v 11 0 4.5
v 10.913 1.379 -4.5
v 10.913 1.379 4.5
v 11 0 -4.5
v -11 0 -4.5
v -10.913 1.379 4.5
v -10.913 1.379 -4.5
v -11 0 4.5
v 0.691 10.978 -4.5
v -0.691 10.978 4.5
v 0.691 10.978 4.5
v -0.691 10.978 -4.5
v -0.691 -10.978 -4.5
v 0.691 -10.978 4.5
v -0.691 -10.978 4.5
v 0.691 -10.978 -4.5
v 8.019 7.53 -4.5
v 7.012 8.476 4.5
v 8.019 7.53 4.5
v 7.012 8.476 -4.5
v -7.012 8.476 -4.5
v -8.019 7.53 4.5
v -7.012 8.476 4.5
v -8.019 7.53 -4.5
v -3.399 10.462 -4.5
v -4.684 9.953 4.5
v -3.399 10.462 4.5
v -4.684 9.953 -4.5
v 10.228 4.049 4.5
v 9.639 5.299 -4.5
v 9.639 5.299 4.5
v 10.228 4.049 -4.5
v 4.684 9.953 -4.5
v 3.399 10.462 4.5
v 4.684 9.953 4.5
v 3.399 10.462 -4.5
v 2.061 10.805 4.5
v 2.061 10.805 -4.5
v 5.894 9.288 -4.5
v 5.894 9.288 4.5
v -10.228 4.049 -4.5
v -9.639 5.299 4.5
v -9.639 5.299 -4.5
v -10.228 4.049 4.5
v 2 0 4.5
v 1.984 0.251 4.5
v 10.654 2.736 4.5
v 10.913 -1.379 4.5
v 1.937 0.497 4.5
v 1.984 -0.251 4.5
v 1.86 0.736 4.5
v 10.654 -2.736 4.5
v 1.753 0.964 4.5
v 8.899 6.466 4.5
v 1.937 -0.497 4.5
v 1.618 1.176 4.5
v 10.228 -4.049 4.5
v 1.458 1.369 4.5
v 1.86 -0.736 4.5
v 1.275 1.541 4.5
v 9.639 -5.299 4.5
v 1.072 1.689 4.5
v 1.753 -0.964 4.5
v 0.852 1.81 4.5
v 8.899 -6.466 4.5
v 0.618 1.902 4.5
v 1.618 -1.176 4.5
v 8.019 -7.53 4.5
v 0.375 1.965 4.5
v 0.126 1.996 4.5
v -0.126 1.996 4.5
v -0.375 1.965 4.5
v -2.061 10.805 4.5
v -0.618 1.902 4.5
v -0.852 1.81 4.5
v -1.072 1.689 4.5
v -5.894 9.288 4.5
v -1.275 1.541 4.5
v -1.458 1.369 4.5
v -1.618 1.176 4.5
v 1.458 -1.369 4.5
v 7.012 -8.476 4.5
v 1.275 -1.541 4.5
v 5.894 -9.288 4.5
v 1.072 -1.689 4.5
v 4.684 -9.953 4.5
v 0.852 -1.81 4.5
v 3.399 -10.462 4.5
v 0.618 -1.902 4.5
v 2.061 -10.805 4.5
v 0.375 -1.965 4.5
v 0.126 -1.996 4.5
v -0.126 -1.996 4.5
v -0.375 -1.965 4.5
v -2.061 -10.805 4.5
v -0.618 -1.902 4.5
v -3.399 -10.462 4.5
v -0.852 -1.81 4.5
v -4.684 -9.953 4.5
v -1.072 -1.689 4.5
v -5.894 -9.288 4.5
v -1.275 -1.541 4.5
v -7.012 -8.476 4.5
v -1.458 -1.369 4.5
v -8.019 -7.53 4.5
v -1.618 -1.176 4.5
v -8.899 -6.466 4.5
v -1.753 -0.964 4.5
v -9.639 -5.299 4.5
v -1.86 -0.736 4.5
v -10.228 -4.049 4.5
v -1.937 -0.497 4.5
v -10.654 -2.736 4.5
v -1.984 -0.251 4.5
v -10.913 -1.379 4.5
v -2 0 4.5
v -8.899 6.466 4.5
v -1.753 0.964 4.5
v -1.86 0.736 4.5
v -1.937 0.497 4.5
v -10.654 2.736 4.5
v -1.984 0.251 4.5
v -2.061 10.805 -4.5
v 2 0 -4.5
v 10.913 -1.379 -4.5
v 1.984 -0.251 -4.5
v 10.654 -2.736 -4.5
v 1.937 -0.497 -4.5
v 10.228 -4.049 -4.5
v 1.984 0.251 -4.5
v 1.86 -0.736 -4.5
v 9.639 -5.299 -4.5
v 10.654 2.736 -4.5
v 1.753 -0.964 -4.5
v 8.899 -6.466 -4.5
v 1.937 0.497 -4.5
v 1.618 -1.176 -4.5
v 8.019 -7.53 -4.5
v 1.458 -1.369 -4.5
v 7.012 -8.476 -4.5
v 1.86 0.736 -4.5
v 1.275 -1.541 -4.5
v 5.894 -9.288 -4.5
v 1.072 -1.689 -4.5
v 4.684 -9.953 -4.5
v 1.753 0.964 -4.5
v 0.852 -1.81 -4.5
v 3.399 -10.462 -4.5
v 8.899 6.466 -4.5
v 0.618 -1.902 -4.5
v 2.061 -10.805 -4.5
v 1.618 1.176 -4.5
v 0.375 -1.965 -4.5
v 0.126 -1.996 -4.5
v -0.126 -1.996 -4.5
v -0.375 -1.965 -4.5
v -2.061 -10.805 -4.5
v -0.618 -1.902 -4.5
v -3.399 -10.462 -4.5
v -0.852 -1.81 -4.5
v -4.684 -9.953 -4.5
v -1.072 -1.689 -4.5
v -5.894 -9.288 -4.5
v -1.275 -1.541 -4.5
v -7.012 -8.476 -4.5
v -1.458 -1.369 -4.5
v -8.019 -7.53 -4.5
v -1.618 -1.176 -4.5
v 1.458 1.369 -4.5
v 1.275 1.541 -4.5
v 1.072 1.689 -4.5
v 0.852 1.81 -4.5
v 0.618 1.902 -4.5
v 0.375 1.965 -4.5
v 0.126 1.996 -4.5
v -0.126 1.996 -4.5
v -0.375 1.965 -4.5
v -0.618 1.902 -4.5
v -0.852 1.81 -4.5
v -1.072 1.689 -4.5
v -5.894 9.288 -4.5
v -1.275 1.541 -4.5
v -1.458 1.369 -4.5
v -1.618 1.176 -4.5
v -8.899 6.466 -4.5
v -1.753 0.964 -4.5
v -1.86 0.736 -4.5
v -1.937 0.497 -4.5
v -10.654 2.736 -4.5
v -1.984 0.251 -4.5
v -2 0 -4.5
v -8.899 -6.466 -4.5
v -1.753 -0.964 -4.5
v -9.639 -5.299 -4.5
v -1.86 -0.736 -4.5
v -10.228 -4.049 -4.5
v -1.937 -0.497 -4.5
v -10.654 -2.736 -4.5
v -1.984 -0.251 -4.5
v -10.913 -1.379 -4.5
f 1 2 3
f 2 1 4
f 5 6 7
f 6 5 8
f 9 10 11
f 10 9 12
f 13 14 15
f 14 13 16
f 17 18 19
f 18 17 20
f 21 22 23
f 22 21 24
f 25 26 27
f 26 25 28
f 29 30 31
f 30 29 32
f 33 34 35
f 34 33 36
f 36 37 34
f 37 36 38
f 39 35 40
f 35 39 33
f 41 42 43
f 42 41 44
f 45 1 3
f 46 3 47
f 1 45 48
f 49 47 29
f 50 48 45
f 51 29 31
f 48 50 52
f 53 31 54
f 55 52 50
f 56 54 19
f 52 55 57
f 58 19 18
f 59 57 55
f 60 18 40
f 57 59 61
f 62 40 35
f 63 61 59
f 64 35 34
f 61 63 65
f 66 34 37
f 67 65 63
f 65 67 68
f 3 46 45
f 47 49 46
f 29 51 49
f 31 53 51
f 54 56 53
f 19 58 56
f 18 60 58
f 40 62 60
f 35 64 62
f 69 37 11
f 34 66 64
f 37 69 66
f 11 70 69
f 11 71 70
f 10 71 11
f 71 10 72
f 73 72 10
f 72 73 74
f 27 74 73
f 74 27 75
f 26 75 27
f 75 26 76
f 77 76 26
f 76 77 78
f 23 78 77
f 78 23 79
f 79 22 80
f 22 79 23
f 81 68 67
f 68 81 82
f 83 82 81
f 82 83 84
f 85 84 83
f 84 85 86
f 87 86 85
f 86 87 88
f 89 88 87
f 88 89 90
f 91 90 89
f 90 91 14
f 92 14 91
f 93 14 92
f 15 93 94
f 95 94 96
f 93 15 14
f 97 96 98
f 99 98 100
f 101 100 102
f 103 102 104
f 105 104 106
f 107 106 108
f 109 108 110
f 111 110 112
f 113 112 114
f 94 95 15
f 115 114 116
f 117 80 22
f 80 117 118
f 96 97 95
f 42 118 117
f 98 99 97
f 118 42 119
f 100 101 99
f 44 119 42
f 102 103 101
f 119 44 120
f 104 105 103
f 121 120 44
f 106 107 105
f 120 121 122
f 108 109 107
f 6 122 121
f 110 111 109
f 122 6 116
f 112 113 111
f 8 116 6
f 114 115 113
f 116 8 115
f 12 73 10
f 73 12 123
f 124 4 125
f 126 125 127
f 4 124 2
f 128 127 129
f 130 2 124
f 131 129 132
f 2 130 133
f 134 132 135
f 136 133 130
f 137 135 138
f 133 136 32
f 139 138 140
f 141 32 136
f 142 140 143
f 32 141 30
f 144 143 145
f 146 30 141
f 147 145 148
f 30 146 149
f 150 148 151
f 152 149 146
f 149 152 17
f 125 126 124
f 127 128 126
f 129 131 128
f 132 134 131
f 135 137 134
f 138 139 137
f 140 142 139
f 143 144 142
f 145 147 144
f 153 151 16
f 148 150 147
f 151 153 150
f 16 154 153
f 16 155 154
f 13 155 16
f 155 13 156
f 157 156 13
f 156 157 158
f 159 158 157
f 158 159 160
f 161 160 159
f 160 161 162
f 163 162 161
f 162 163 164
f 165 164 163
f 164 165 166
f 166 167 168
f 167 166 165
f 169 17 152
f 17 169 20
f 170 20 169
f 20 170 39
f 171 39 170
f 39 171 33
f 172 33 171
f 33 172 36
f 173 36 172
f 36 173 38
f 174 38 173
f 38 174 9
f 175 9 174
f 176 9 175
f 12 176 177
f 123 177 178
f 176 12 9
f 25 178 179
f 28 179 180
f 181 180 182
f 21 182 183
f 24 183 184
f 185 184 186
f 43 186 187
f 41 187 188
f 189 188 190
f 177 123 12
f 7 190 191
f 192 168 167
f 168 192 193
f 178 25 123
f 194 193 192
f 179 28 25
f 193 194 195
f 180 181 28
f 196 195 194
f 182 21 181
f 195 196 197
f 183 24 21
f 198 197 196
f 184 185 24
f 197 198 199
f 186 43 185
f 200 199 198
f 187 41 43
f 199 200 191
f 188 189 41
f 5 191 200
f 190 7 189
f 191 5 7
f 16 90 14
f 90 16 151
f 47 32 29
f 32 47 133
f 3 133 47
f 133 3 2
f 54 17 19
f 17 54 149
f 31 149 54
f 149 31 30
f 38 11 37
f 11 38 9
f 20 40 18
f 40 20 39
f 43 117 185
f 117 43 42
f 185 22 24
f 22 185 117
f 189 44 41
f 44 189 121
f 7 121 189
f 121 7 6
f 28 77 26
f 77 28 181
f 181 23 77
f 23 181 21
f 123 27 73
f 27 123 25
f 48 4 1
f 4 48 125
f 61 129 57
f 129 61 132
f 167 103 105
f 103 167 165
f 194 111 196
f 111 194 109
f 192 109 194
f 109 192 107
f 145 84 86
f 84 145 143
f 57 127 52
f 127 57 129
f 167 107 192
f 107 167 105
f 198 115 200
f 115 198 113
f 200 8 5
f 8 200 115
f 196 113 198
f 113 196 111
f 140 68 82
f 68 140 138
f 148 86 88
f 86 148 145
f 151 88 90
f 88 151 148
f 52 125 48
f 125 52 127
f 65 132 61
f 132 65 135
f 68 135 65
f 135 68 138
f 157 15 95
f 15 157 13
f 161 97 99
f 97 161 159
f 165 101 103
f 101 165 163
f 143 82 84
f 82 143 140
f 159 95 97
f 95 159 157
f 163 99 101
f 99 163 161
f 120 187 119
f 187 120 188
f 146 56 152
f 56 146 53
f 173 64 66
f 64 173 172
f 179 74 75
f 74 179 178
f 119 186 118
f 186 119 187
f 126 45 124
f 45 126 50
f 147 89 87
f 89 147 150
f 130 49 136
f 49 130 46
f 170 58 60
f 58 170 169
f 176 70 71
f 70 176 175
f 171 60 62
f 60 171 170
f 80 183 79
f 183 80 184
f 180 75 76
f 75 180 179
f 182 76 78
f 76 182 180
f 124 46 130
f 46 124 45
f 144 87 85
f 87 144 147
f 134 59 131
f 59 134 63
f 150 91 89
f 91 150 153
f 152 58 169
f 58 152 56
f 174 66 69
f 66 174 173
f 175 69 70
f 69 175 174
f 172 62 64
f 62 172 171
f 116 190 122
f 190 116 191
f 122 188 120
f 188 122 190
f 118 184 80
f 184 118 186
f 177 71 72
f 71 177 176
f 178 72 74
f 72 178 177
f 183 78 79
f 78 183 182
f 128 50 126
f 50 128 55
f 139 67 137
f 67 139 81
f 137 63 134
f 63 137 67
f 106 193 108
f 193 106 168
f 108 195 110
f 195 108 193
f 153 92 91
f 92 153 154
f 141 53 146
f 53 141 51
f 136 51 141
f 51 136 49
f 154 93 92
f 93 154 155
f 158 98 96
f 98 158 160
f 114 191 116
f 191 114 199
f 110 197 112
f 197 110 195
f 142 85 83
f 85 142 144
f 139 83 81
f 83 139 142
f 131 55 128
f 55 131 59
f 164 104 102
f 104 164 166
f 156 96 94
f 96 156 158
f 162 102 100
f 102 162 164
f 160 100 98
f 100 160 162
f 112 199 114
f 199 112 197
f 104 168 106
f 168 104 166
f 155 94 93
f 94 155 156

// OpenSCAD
$fn = 50;


difference() {
	union() {
		translate(v = [0, 0, -4.5000000000]) {
			cylinder(h = 9, r = 11.0000000000);
		}
	}
	union() {
		translate(v = [0, 0, -100.0000000000]) {
			cylinder(h = 200, r = 2);
		}
	}
}
